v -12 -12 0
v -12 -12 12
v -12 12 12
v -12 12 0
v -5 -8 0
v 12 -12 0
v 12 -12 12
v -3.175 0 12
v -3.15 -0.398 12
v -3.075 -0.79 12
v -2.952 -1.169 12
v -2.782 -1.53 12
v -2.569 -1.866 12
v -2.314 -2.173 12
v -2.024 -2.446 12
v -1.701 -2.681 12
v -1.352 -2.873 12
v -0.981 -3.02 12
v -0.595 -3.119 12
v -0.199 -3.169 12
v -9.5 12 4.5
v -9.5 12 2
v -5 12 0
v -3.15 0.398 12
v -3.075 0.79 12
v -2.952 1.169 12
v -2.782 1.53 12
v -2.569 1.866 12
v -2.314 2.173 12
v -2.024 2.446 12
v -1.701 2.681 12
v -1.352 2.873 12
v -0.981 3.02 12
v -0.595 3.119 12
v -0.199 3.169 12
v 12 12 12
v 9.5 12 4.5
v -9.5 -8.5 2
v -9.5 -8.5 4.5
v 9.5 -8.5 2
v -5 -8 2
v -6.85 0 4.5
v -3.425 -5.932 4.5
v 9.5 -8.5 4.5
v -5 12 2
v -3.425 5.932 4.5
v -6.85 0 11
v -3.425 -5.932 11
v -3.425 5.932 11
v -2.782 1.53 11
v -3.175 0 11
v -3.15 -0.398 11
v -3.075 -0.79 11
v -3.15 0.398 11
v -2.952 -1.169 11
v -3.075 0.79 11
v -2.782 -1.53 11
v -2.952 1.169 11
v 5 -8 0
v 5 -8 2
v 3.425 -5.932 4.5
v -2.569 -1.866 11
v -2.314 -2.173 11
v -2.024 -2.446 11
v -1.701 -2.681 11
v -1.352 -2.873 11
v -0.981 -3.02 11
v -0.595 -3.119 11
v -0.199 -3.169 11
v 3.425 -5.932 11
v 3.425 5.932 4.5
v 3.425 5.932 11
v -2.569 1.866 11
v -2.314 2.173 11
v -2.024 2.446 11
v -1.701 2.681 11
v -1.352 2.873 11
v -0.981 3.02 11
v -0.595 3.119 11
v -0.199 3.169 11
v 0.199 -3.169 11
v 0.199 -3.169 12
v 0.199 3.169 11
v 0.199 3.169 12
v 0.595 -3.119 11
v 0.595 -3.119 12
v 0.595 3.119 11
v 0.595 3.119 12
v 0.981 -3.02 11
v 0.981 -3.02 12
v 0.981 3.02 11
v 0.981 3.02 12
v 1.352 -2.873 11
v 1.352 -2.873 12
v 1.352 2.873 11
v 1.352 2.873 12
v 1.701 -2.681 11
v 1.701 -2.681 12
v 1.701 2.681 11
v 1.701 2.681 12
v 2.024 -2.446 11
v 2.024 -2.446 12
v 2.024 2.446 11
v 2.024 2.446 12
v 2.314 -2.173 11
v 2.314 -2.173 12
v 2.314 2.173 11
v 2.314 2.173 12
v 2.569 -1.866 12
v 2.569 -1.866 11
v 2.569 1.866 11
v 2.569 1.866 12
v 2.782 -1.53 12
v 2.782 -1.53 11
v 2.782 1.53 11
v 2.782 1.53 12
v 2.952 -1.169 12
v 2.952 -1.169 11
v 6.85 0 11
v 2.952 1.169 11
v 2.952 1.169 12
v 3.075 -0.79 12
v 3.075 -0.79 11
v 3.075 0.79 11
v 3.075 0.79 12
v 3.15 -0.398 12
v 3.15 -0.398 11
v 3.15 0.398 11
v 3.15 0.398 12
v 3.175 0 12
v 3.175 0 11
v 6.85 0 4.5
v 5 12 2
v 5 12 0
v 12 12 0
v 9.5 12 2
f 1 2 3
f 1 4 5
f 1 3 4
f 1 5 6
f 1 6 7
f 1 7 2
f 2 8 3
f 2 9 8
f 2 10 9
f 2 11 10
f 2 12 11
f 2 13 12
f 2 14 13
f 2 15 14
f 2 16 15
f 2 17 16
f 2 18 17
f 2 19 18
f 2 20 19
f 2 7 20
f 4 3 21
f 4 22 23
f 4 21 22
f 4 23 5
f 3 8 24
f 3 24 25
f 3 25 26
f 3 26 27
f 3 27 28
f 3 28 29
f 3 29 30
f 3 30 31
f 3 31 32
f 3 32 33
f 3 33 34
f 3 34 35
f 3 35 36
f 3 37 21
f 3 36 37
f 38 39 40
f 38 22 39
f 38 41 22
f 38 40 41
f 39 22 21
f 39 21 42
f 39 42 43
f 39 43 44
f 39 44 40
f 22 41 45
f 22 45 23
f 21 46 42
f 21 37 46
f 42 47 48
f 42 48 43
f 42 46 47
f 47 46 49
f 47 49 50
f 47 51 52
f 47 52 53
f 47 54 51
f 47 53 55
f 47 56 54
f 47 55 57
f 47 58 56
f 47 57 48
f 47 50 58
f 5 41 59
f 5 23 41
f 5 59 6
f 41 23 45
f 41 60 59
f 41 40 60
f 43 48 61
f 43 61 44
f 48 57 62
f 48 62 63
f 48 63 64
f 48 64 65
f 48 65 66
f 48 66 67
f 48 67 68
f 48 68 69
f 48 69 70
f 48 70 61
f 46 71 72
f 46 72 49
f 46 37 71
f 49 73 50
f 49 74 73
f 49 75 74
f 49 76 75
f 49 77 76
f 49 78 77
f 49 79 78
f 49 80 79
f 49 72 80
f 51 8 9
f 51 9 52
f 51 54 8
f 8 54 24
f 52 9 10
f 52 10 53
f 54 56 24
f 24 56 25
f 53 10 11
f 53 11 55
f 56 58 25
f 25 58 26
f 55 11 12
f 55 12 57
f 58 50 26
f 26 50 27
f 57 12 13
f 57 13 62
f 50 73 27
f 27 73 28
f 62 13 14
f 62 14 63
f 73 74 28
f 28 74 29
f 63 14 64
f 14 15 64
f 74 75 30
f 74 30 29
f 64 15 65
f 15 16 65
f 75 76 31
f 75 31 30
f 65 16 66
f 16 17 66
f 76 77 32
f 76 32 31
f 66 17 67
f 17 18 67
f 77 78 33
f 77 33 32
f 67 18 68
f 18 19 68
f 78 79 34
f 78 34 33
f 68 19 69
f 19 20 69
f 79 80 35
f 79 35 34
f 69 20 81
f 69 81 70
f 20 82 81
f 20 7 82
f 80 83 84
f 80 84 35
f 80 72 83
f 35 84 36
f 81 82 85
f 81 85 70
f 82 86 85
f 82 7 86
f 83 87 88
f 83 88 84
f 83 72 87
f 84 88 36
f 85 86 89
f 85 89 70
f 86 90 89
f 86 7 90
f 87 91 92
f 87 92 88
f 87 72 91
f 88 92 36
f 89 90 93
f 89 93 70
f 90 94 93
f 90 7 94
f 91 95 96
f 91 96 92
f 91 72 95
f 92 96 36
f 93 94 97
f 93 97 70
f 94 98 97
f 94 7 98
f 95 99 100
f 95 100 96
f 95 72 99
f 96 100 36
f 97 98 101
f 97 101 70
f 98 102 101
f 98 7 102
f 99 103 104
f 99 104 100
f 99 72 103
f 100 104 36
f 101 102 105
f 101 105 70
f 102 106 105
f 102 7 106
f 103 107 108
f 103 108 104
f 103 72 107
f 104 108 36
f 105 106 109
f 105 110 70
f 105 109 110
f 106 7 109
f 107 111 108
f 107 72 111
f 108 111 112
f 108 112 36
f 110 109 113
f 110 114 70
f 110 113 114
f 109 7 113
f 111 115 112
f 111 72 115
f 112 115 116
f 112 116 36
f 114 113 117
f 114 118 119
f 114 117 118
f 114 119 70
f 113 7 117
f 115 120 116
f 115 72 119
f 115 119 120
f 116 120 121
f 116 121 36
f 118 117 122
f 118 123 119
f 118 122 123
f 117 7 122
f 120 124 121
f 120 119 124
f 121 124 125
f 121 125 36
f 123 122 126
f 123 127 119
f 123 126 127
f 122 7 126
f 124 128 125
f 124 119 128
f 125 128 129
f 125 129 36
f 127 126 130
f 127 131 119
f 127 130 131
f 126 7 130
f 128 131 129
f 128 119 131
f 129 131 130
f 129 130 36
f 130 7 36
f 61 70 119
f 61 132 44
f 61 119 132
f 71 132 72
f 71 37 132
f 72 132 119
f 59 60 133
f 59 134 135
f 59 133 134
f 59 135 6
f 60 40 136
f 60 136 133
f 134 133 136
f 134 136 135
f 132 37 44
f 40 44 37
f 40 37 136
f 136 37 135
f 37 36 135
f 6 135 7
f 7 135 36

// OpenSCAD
$fn=50;

module normcube(c) {
    // normalize a cube to be positioned around the origin, like a cylinder.
    translate([-c.x/2,-c.y/2,0]) cube(c);
}

module nut() {
  cylinder(h=8, r=(8/16 * 25.4 / 2) + 0.5, center=true, $fn=6);
}

module main() {
  difference() {
    // box
    HA=12;
    DA=24;
    // plate
    HB=2.5;
    DB=19;
    // cutout
    HC=2;
    DC=10;
    normcube([DA,DA,HA]);
    // bolt hole
    cylinder(HA,d=(1/4)*25.4);
    // nut hole
    translate([0,0,7]) nut();
    // plate
    translate([0,2,HC]) normcube([DB,DB+2,HB]);
    // cutout
    translate([0,2,0]) normcube([DC,DC+10,HC]);
  }
}

main();
